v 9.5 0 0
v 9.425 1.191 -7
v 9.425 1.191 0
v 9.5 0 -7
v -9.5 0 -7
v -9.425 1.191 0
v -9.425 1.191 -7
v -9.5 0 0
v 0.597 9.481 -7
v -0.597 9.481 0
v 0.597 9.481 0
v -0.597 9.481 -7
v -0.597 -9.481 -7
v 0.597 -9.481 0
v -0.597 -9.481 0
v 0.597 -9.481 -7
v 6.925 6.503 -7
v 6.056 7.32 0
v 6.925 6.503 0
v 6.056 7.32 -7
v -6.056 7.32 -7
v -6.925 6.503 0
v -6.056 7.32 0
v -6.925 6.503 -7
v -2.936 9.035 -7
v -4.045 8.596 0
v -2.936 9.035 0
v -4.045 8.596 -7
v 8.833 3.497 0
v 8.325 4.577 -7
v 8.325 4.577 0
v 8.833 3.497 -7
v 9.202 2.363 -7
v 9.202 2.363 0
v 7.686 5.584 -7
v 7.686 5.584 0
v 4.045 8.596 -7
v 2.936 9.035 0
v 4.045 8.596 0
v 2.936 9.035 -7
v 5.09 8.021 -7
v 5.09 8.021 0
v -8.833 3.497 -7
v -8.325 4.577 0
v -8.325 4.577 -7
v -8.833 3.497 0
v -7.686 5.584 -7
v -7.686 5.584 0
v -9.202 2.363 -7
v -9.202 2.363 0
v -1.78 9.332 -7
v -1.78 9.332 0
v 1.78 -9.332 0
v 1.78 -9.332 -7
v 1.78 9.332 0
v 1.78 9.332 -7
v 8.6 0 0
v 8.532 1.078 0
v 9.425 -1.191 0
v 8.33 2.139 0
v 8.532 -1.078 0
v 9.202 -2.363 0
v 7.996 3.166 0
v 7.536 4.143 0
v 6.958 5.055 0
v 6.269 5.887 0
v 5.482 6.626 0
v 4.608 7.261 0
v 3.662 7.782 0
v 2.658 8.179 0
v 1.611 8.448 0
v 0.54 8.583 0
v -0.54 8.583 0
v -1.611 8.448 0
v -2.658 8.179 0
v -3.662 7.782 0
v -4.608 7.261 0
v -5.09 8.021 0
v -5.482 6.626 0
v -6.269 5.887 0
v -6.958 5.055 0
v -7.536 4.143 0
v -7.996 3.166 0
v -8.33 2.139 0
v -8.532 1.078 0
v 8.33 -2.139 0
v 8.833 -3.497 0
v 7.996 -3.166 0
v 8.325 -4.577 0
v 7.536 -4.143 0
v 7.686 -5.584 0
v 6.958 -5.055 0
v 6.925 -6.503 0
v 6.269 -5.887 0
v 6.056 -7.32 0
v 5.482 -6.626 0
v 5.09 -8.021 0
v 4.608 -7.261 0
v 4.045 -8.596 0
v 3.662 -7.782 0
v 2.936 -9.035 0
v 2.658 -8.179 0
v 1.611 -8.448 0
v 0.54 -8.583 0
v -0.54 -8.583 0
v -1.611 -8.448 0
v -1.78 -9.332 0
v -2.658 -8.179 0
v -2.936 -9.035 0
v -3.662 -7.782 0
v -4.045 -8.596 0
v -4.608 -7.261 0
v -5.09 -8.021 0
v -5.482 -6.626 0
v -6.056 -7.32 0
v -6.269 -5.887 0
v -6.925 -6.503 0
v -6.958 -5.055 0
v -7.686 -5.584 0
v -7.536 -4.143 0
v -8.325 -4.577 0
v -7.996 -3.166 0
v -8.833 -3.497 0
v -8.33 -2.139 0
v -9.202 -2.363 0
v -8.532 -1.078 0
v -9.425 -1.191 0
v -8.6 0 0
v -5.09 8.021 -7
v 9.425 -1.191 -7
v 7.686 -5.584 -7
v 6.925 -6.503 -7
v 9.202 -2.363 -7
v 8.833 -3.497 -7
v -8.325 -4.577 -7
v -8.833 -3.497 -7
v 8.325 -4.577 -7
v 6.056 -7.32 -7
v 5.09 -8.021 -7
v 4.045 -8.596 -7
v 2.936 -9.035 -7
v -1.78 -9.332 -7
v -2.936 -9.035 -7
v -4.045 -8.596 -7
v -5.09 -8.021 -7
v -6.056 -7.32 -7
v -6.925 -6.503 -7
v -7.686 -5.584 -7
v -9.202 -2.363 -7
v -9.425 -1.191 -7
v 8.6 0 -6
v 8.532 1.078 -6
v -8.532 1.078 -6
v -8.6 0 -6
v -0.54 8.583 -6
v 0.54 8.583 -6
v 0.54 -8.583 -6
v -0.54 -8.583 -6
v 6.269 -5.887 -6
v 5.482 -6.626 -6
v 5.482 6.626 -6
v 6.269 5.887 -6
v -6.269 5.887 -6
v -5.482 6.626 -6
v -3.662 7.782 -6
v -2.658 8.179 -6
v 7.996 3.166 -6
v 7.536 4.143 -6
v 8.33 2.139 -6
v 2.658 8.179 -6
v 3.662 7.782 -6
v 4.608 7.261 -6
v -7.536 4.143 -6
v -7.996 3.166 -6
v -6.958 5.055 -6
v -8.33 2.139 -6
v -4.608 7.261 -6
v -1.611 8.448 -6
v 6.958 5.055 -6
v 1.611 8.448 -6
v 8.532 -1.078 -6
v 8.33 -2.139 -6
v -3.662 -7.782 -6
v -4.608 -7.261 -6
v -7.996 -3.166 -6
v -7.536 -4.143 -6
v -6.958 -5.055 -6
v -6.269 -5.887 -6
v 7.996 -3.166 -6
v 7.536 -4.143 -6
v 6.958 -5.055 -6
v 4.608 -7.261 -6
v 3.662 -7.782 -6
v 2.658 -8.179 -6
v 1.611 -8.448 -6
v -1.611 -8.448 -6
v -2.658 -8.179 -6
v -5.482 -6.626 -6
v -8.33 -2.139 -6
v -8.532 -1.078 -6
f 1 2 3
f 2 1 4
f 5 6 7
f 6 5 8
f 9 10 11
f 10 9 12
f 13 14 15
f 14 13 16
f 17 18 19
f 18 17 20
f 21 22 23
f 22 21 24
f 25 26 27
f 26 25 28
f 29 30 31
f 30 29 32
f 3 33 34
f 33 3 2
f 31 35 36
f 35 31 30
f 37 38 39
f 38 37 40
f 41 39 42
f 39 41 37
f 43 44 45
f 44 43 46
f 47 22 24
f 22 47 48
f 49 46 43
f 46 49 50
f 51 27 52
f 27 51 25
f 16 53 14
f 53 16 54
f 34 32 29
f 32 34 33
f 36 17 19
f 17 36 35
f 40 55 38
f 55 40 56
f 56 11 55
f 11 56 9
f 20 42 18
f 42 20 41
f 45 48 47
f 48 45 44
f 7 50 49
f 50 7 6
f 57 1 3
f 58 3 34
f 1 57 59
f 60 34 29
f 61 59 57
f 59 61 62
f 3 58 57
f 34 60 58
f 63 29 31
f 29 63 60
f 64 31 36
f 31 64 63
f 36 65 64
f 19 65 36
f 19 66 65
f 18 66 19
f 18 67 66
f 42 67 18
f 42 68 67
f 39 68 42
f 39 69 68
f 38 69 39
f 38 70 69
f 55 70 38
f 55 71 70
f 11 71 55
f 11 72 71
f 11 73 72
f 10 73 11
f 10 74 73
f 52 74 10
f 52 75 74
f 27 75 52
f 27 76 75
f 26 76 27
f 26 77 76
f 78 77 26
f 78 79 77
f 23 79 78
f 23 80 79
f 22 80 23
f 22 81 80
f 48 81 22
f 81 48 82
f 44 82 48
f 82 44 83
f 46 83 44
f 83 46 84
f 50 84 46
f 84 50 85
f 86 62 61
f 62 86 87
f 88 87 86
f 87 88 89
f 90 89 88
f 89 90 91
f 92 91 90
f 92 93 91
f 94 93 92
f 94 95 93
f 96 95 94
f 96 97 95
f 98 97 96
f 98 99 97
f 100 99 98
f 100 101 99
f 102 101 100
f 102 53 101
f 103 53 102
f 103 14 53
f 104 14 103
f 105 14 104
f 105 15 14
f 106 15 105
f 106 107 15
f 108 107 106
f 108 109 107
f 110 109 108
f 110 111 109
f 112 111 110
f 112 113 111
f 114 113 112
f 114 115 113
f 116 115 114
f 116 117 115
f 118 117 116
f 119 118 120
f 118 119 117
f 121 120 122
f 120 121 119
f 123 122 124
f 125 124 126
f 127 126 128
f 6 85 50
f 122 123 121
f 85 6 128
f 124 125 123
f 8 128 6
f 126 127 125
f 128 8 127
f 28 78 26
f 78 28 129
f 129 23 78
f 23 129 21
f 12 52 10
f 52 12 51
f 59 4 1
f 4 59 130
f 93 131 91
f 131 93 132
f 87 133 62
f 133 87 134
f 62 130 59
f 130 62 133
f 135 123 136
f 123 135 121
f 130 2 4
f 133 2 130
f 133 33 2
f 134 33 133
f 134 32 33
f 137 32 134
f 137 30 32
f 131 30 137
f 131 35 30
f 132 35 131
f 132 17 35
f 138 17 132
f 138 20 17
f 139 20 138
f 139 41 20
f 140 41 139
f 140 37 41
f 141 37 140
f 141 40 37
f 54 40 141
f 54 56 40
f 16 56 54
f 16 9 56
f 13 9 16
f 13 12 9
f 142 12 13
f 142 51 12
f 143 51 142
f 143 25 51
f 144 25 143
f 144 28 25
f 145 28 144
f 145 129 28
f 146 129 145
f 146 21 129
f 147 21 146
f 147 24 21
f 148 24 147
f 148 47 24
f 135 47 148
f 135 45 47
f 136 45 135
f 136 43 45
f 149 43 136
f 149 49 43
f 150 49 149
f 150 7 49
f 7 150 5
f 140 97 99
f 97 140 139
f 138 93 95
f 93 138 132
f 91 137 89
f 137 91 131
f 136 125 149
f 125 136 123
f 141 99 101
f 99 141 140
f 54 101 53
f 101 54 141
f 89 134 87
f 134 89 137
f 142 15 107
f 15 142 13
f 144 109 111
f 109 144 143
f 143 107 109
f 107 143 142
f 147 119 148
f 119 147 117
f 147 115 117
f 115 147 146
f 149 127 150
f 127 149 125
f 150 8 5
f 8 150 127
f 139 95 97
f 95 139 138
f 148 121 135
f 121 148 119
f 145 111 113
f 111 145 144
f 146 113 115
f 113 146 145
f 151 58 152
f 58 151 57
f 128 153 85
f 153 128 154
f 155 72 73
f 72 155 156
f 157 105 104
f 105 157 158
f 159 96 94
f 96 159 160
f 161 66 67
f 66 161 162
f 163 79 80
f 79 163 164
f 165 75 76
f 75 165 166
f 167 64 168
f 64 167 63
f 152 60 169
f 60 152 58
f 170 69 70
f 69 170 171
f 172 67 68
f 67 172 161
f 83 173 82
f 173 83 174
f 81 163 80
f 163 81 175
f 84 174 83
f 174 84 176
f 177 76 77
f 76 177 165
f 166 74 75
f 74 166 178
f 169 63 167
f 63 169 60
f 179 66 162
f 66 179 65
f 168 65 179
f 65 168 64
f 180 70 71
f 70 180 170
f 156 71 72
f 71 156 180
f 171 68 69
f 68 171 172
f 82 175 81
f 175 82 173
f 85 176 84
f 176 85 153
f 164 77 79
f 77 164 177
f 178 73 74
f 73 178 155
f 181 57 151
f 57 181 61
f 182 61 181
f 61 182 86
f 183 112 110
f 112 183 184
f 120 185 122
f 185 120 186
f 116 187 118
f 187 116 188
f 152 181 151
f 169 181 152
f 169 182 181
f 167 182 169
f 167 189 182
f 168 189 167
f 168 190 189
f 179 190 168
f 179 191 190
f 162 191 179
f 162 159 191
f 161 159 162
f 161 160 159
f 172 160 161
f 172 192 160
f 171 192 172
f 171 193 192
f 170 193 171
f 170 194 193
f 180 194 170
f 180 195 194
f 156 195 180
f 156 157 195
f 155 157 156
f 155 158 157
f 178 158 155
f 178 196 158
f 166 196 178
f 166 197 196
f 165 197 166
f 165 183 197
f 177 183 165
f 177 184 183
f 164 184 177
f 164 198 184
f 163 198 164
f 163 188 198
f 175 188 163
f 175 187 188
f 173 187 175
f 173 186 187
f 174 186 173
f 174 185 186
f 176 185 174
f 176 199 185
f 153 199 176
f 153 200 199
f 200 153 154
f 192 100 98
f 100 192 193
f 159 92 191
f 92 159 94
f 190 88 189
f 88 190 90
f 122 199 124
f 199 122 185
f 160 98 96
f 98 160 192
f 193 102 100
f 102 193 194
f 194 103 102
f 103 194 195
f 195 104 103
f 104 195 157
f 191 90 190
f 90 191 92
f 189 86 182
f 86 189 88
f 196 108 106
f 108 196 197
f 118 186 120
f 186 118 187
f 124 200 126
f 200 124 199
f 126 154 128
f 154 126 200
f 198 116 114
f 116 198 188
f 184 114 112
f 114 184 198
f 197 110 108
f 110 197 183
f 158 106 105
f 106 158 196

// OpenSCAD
$fn = 50;


difference() {
	union() {
		translate(v = [0, 0, -7.0000000000]) {
			cylinder(h = 7, r = 9.5000000000);
		}
	}
	union() {
		#translate(v = [0, 0, -6.0000000000]) {
			cylinder(h = 6, r = 8.6000000000);
		}
	}
}
